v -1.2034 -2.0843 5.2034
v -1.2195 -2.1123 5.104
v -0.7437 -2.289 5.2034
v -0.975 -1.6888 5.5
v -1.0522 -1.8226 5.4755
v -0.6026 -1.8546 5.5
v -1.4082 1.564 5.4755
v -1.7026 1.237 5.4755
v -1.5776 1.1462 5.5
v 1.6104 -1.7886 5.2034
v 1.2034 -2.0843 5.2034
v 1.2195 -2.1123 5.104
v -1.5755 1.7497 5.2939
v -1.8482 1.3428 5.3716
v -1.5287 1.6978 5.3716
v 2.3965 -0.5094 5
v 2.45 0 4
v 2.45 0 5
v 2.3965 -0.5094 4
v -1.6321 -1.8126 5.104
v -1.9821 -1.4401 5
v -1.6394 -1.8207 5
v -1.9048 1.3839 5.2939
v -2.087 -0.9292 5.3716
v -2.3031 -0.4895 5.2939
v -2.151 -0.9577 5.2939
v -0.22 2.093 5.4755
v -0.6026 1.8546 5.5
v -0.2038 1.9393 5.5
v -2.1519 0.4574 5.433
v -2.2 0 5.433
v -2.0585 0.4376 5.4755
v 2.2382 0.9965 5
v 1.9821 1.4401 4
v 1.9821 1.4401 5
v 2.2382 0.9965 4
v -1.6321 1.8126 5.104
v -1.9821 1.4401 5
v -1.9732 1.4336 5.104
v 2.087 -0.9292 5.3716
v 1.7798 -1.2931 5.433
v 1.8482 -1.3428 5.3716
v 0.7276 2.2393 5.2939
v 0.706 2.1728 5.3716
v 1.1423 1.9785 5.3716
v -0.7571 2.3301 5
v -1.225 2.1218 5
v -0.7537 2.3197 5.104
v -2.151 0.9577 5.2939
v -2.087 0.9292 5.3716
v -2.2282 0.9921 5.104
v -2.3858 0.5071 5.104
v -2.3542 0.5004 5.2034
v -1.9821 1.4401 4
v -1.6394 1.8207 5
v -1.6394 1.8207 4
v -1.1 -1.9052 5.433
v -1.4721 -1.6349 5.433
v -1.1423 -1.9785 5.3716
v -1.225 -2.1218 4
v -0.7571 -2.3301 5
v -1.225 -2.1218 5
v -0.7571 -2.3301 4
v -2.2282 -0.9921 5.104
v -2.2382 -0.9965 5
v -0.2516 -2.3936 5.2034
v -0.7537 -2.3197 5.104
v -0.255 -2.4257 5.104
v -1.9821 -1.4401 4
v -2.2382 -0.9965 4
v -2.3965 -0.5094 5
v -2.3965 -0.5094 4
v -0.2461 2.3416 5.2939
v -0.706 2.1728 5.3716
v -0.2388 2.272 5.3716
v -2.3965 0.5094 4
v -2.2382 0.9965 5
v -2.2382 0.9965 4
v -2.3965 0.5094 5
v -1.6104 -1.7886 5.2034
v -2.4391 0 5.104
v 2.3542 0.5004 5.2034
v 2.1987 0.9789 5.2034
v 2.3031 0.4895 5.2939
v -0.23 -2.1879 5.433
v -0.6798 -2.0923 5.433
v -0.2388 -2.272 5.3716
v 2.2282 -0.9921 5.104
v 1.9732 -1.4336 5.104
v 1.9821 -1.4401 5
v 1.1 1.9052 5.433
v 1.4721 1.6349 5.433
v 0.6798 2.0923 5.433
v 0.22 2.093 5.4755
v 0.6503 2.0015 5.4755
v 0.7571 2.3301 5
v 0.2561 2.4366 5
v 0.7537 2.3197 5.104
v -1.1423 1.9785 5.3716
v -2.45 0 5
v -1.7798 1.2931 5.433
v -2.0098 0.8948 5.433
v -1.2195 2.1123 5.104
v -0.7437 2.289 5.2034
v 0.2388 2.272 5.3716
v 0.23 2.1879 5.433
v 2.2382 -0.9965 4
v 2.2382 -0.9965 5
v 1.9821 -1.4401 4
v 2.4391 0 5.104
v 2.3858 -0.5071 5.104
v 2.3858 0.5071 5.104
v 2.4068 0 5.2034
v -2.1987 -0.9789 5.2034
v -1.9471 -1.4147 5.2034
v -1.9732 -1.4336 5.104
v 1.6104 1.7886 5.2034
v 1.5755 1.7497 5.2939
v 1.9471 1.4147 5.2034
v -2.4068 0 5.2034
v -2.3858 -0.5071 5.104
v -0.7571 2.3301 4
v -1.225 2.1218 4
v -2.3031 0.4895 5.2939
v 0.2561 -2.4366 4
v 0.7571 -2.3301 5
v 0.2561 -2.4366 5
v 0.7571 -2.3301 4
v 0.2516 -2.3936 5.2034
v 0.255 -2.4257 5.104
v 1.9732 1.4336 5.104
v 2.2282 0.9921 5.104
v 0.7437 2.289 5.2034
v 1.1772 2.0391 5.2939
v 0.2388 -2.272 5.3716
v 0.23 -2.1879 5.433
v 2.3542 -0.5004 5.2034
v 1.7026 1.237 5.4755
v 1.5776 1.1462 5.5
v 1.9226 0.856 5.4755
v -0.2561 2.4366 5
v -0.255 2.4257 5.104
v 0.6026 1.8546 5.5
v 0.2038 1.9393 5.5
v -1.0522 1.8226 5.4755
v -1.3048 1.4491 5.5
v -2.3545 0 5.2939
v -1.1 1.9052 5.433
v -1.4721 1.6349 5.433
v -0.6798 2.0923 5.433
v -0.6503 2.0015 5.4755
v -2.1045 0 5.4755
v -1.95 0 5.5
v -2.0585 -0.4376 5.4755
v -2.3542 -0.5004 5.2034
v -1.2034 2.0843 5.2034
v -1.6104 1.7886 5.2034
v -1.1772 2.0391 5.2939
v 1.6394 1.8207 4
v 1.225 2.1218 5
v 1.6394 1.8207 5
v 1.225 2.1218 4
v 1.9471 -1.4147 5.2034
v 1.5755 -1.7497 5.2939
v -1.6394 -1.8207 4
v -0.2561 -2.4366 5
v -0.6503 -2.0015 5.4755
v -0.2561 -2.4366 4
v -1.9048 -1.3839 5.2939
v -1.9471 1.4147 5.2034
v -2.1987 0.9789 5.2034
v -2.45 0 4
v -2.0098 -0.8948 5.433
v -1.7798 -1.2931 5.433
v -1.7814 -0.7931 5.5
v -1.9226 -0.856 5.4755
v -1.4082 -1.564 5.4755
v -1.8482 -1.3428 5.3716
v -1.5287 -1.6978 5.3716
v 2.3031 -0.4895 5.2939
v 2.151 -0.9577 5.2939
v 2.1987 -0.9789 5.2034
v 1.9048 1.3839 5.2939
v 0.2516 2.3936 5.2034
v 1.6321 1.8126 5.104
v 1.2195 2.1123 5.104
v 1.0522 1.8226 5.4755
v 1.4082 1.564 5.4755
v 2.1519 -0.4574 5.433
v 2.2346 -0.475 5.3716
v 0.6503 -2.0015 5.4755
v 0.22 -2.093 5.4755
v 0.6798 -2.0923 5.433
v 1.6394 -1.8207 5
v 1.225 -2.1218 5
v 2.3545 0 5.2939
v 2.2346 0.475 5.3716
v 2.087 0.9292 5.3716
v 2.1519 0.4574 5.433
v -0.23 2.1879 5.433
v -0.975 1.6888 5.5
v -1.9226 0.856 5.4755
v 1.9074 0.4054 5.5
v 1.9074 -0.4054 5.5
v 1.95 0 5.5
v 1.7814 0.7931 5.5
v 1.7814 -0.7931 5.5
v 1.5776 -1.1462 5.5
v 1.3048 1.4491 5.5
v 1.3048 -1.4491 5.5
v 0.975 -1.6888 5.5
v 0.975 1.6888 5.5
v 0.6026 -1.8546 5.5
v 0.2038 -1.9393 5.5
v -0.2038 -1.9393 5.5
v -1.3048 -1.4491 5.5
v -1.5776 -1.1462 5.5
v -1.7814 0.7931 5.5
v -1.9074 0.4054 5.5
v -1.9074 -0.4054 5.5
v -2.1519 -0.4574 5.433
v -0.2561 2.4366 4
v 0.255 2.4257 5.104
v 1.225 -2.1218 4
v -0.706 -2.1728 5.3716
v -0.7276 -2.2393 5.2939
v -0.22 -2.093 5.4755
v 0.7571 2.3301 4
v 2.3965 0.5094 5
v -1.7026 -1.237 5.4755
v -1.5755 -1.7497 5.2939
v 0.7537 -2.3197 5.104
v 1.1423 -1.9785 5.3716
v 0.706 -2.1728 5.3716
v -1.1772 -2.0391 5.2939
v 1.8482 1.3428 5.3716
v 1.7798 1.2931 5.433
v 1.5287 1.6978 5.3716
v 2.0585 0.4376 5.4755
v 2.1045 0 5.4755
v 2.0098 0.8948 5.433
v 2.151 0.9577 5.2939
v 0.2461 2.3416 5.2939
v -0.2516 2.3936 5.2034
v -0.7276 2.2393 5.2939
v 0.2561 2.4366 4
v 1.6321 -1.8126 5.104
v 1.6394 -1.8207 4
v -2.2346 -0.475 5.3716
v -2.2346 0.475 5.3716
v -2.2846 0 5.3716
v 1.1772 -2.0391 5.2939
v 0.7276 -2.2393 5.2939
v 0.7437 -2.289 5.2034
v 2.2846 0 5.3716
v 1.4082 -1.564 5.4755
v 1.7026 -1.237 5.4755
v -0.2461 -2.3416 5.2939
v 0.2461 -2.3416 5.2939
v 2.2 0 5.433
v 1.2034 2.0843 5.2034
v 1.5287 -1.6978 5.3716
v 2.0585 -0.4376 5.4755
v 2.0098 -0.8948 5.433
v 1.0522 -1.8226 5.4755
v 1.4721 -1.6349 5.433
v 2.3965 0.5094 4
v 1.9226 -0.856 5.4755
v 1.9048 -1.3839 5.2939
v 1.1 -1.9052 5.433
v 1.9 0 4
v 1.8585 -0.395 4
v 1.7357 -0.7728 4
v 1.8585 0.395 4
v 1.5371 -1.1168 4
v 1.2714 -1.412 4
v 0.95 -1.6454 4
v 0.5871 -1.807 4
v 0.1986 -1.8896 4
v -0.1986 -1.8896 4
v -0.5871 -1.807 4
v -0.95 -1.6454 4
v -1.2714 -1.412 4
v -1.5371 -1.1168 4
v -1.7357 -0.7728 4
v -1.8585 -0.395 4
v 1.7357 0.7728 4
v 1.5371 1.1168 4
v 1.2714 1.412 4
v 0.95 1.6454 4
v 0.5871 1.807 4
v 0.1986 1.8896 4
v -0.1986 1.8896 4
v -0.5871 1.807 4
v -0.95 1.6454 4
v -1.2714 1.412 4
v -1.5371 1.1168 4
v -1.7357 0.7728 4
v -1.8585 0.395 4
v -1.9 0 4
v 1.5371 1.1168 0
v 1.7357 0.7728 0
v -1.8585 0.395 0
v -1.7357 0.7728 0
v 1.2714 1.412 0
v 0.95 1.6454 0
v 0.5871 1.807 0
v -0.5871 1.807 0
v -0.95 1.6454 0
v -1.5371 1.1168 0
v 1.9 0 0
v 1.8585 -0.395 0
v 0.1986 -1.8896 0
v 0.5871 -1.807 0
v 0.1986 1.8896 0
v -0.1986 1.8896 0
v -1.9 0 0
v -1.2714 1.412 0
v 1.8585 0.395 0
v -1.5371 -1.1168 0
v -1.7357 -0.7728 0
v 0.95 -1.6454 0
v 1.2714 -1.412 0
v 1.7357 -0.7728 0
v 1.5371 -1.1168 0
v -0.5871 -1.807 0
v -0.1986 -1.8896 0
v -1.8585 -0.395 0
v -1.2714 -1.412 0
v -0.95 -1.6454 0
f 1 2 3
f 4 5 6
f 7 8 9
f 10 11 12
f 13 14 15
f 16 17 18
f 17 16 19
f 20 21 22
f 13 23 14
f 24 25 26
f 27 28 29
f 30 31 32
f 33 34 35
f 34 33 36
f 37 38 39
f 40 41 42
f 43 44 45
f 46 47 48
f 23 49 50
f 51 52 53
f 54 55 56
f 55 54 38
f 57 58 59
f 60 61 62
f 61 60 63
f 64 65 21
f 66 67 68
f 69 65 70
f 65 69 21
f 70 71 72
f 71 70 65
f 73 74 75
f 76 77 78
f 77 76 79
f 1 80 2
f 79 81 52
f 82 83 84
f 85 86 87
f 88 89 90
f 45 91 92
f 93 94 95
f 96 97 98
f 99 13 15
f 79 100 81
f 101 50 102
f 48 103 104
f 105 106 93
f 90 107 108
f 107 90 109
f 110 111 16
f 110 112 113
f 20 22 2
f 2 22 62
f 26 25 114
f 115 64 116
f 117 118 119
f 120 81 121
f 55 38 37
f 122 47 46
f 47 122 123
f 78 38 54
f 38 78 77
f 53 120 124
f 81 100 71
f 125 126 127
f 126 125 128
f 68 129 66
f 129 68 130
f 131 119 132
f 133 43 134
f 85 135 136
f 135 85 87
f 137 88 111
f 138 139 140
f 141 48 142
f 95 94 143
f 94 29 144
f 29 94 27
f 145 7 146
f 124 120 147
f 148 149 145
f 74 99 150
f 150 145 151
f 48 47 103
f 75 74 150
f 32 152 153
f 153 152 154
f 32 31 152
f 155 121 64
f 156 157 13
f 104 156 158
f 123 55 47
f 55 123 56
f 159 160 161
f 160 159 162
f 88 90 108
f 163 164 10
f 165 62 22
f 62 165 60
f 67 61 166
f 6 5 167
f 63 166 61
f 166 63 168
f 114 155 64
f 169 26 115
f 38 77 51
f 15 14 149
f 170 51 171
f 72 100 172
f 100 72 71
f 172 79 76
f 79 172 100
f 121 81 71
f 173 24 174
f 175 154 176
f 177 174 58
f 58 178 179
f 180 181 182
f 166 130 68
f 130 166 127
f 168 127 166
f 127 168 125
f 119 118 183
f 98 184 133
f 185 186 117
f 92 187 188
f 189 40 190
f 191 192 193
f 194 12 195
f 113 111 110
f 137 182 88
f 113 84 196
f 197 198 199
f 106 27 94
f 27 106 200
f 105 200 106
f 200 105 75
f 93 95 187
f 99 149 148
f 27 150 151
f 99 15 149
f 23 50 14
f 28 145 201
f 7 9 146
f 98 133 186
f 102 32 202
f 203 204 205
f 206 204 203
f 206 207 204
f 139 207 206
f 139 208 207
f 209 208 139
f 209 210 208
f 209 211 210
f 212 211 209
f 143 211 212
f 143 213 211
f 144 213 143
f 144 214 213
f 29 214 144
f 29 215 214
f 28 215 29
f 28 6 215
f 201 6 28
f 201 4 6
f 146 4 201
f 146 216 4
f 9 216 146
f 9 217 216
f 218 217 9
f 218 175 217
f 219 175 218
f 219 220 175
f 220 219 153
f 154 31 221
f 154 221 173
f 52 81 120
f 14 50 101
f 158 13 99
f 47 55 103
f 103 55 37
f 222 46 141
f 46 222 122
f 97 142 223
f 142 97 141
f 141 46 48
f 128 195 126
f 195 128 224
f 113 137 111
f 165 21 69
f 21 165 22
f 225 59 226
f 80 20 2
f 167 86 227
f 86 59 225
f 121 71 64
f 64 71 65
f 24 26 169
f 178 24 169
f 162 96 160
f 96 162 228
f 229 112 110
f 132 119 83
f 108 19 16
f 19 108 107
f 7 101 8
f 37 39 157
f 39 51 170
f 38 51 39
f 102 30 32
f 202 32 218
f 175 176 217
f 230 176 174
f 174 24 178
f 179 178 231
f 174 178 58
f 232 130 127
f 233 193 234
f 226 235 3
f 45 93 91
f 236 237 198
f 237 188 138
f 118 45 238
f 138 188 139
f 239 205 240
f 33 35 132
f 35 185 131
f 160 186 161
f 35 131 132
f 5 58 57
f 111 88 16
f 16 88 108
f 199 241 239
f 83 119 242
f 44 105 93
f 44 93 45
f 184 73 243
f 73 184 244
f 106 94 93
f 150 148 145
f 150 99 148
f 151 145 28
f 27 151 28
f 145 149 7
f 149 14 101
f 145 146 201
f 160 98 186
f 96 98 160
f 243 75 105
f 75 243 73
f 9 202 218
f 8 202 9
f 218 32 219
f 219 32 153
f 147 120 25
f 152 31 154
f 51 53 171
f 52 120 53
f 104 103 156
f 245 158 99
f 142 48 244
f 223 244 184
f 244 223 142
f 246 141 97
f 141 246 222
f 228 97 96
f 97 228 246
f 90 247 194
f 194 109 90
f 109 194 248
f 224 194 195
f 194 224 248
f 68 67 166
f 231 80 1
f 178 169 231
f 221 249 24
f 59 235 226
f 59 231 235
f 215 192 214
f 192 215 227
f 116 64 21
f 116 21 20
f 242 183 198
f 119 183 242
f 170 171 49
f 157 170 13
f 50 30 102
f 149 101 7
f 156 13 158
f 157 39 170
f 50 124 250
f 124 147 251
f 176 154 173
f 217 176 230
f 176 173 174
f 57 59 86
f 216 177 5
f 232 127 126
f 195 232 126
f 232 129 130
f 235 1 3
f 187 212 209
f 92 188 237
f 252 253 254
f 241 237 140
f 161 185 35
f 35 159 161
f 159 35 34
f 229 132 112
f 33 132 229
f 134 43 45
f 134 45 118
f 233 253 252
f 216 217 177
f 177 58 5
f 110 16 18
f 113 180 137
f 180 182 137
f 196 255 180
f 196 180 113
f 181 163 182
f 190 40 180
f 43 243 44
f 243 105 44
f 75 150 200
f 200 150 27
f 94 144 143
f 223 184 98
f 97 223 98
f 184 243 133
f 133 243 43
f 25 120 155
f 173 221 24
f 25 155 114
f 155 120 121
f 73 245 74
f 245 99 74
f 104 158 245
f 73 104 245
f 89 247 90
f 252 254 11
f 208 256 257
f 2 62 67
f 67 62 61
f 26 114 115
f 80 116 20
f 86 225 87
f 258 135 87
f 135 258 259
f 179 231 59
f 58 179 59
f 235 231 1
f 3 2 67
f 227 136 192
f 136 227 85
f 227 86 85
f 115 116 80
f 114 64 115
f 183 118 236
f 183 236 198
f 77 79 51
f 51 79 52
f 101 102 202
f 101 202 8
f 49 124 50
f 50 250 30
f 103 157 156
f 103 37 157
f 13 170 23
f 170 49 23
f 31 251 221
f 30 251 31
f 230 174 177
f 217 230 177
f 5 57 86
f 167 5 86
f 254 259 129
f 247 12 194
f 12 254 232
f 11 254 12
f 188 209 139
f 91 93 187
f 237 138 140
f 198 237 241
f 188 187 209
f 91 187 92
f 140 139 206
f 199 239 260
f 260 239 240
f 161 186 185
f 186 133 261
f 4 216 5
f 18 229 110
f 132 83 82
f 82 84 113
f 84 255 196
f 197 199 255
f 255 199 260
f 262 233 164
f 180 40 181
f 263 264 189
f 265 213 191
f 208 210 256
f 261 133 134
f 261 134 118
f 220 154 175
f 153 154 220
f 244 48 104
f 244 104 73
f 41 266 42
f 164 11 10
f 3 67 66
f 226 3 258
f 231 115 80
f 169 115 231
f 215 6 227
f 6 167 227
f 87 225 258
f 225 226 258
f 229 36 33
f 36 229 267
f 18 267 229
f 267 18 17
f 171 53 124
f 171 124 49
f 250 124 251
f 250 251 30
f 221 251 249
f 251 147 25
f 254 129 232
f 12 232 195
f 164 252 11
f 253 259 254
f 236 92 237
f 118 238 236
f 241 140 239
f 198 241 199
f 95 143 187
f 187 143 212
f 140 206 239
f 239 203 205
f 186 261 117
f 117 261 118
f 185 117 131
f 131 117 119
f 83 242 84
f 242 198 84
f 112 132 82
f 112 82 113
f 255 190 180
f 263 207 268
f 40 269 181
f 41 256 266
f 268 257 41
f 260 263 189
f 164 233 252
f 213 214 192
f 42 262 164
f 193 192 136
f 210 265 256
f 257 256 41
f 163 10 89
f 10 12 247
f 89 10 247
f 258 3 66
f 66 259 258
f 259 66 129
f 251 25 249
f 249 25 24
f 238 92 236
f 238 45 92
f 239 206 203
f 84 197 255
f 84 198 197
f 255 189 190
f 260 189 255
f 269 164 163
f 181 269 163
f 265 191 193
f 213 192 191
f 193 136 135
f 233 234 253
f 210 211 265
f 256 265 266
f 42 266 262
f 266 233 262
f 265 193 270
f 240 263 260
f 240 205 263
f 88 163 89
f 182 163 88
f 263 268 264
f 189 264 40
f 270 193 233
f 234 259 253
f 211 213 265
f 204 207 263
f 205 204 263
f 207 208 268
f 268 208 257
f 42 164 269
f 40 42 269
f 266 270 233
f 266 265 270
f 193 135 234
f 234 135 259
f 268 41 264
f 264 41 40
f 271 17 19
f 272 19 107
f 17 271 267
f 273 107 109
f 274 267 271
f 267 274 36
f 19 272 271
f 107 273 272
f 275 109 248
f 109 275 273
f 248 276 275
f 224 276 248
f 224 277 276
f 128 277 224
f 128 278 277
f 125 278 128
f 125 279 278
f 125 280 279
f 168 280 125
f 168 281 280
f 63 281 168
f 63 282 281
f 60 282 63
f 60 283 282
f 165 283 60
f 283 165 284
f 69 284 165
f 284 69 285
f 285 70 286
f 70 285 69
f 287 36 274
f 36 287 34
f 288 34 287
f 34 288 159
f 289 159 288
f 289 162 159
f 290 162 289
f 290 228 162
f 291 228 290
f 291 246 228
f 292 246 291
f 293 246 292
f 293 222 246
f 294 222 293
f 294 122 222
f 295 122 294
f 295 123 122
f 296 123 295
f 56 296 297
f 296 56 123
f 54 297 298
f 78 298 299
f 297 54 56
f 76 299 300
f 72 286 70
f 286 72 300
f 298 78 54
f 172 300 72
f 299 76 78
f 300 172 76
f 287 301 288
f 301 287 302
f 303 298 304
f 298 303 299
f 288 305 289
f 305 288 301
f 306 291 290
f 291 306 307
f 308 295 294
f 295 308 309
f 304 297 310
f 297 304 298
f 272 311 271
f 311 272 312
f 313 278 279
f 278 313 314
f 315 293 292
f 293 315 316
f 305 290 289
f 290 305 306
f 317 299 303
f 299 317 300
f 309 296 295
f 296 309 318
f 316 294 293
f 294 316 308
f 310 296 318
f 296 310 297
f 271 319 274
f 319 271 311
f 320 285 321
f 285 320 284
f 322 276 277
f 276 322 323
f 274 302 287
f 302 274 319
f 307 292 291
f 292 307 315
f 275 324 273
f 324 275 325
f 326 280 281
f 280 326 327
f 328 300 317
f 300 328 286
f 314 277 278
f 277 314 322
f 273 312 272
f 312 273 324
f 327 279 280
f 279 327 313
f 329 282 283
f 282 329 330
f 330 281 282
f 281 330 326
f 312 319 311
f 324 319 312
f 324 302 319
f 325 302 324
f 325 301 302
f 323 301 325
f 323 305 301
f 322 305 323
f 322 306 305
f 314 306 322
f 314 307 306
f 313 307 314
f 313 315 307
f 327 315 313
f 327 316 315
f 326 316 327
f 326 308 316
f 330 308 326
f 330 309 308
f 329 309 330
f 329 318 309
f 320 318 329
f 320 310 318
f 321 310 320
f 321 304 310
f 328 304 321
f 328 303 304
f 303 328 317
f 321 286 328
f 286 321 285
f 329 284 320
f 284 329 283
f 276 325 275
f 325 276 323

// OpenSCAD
standoff = 1.5;
depth = 4.0;
diameter_top = 4.9;
diameter_bottom = 3.8;

$fs = 0.01;

module rounded_cylinder(r,h,n) {
  rotate_extrude(convexity=1) {
    offset(r=n) offset(delta=-n) square([r,h]);
    square([n,h]);
  }
}
       
color("orange") {
    difference() {
        translate([0,0,0]) {
            rounded_cylinder(diameter_top/2, depth+standoff, 0.5);       
        }
        cylinder(depth,d=diameter_top);
    }
    cylinder(depth,d=diameter_bottom);
}
